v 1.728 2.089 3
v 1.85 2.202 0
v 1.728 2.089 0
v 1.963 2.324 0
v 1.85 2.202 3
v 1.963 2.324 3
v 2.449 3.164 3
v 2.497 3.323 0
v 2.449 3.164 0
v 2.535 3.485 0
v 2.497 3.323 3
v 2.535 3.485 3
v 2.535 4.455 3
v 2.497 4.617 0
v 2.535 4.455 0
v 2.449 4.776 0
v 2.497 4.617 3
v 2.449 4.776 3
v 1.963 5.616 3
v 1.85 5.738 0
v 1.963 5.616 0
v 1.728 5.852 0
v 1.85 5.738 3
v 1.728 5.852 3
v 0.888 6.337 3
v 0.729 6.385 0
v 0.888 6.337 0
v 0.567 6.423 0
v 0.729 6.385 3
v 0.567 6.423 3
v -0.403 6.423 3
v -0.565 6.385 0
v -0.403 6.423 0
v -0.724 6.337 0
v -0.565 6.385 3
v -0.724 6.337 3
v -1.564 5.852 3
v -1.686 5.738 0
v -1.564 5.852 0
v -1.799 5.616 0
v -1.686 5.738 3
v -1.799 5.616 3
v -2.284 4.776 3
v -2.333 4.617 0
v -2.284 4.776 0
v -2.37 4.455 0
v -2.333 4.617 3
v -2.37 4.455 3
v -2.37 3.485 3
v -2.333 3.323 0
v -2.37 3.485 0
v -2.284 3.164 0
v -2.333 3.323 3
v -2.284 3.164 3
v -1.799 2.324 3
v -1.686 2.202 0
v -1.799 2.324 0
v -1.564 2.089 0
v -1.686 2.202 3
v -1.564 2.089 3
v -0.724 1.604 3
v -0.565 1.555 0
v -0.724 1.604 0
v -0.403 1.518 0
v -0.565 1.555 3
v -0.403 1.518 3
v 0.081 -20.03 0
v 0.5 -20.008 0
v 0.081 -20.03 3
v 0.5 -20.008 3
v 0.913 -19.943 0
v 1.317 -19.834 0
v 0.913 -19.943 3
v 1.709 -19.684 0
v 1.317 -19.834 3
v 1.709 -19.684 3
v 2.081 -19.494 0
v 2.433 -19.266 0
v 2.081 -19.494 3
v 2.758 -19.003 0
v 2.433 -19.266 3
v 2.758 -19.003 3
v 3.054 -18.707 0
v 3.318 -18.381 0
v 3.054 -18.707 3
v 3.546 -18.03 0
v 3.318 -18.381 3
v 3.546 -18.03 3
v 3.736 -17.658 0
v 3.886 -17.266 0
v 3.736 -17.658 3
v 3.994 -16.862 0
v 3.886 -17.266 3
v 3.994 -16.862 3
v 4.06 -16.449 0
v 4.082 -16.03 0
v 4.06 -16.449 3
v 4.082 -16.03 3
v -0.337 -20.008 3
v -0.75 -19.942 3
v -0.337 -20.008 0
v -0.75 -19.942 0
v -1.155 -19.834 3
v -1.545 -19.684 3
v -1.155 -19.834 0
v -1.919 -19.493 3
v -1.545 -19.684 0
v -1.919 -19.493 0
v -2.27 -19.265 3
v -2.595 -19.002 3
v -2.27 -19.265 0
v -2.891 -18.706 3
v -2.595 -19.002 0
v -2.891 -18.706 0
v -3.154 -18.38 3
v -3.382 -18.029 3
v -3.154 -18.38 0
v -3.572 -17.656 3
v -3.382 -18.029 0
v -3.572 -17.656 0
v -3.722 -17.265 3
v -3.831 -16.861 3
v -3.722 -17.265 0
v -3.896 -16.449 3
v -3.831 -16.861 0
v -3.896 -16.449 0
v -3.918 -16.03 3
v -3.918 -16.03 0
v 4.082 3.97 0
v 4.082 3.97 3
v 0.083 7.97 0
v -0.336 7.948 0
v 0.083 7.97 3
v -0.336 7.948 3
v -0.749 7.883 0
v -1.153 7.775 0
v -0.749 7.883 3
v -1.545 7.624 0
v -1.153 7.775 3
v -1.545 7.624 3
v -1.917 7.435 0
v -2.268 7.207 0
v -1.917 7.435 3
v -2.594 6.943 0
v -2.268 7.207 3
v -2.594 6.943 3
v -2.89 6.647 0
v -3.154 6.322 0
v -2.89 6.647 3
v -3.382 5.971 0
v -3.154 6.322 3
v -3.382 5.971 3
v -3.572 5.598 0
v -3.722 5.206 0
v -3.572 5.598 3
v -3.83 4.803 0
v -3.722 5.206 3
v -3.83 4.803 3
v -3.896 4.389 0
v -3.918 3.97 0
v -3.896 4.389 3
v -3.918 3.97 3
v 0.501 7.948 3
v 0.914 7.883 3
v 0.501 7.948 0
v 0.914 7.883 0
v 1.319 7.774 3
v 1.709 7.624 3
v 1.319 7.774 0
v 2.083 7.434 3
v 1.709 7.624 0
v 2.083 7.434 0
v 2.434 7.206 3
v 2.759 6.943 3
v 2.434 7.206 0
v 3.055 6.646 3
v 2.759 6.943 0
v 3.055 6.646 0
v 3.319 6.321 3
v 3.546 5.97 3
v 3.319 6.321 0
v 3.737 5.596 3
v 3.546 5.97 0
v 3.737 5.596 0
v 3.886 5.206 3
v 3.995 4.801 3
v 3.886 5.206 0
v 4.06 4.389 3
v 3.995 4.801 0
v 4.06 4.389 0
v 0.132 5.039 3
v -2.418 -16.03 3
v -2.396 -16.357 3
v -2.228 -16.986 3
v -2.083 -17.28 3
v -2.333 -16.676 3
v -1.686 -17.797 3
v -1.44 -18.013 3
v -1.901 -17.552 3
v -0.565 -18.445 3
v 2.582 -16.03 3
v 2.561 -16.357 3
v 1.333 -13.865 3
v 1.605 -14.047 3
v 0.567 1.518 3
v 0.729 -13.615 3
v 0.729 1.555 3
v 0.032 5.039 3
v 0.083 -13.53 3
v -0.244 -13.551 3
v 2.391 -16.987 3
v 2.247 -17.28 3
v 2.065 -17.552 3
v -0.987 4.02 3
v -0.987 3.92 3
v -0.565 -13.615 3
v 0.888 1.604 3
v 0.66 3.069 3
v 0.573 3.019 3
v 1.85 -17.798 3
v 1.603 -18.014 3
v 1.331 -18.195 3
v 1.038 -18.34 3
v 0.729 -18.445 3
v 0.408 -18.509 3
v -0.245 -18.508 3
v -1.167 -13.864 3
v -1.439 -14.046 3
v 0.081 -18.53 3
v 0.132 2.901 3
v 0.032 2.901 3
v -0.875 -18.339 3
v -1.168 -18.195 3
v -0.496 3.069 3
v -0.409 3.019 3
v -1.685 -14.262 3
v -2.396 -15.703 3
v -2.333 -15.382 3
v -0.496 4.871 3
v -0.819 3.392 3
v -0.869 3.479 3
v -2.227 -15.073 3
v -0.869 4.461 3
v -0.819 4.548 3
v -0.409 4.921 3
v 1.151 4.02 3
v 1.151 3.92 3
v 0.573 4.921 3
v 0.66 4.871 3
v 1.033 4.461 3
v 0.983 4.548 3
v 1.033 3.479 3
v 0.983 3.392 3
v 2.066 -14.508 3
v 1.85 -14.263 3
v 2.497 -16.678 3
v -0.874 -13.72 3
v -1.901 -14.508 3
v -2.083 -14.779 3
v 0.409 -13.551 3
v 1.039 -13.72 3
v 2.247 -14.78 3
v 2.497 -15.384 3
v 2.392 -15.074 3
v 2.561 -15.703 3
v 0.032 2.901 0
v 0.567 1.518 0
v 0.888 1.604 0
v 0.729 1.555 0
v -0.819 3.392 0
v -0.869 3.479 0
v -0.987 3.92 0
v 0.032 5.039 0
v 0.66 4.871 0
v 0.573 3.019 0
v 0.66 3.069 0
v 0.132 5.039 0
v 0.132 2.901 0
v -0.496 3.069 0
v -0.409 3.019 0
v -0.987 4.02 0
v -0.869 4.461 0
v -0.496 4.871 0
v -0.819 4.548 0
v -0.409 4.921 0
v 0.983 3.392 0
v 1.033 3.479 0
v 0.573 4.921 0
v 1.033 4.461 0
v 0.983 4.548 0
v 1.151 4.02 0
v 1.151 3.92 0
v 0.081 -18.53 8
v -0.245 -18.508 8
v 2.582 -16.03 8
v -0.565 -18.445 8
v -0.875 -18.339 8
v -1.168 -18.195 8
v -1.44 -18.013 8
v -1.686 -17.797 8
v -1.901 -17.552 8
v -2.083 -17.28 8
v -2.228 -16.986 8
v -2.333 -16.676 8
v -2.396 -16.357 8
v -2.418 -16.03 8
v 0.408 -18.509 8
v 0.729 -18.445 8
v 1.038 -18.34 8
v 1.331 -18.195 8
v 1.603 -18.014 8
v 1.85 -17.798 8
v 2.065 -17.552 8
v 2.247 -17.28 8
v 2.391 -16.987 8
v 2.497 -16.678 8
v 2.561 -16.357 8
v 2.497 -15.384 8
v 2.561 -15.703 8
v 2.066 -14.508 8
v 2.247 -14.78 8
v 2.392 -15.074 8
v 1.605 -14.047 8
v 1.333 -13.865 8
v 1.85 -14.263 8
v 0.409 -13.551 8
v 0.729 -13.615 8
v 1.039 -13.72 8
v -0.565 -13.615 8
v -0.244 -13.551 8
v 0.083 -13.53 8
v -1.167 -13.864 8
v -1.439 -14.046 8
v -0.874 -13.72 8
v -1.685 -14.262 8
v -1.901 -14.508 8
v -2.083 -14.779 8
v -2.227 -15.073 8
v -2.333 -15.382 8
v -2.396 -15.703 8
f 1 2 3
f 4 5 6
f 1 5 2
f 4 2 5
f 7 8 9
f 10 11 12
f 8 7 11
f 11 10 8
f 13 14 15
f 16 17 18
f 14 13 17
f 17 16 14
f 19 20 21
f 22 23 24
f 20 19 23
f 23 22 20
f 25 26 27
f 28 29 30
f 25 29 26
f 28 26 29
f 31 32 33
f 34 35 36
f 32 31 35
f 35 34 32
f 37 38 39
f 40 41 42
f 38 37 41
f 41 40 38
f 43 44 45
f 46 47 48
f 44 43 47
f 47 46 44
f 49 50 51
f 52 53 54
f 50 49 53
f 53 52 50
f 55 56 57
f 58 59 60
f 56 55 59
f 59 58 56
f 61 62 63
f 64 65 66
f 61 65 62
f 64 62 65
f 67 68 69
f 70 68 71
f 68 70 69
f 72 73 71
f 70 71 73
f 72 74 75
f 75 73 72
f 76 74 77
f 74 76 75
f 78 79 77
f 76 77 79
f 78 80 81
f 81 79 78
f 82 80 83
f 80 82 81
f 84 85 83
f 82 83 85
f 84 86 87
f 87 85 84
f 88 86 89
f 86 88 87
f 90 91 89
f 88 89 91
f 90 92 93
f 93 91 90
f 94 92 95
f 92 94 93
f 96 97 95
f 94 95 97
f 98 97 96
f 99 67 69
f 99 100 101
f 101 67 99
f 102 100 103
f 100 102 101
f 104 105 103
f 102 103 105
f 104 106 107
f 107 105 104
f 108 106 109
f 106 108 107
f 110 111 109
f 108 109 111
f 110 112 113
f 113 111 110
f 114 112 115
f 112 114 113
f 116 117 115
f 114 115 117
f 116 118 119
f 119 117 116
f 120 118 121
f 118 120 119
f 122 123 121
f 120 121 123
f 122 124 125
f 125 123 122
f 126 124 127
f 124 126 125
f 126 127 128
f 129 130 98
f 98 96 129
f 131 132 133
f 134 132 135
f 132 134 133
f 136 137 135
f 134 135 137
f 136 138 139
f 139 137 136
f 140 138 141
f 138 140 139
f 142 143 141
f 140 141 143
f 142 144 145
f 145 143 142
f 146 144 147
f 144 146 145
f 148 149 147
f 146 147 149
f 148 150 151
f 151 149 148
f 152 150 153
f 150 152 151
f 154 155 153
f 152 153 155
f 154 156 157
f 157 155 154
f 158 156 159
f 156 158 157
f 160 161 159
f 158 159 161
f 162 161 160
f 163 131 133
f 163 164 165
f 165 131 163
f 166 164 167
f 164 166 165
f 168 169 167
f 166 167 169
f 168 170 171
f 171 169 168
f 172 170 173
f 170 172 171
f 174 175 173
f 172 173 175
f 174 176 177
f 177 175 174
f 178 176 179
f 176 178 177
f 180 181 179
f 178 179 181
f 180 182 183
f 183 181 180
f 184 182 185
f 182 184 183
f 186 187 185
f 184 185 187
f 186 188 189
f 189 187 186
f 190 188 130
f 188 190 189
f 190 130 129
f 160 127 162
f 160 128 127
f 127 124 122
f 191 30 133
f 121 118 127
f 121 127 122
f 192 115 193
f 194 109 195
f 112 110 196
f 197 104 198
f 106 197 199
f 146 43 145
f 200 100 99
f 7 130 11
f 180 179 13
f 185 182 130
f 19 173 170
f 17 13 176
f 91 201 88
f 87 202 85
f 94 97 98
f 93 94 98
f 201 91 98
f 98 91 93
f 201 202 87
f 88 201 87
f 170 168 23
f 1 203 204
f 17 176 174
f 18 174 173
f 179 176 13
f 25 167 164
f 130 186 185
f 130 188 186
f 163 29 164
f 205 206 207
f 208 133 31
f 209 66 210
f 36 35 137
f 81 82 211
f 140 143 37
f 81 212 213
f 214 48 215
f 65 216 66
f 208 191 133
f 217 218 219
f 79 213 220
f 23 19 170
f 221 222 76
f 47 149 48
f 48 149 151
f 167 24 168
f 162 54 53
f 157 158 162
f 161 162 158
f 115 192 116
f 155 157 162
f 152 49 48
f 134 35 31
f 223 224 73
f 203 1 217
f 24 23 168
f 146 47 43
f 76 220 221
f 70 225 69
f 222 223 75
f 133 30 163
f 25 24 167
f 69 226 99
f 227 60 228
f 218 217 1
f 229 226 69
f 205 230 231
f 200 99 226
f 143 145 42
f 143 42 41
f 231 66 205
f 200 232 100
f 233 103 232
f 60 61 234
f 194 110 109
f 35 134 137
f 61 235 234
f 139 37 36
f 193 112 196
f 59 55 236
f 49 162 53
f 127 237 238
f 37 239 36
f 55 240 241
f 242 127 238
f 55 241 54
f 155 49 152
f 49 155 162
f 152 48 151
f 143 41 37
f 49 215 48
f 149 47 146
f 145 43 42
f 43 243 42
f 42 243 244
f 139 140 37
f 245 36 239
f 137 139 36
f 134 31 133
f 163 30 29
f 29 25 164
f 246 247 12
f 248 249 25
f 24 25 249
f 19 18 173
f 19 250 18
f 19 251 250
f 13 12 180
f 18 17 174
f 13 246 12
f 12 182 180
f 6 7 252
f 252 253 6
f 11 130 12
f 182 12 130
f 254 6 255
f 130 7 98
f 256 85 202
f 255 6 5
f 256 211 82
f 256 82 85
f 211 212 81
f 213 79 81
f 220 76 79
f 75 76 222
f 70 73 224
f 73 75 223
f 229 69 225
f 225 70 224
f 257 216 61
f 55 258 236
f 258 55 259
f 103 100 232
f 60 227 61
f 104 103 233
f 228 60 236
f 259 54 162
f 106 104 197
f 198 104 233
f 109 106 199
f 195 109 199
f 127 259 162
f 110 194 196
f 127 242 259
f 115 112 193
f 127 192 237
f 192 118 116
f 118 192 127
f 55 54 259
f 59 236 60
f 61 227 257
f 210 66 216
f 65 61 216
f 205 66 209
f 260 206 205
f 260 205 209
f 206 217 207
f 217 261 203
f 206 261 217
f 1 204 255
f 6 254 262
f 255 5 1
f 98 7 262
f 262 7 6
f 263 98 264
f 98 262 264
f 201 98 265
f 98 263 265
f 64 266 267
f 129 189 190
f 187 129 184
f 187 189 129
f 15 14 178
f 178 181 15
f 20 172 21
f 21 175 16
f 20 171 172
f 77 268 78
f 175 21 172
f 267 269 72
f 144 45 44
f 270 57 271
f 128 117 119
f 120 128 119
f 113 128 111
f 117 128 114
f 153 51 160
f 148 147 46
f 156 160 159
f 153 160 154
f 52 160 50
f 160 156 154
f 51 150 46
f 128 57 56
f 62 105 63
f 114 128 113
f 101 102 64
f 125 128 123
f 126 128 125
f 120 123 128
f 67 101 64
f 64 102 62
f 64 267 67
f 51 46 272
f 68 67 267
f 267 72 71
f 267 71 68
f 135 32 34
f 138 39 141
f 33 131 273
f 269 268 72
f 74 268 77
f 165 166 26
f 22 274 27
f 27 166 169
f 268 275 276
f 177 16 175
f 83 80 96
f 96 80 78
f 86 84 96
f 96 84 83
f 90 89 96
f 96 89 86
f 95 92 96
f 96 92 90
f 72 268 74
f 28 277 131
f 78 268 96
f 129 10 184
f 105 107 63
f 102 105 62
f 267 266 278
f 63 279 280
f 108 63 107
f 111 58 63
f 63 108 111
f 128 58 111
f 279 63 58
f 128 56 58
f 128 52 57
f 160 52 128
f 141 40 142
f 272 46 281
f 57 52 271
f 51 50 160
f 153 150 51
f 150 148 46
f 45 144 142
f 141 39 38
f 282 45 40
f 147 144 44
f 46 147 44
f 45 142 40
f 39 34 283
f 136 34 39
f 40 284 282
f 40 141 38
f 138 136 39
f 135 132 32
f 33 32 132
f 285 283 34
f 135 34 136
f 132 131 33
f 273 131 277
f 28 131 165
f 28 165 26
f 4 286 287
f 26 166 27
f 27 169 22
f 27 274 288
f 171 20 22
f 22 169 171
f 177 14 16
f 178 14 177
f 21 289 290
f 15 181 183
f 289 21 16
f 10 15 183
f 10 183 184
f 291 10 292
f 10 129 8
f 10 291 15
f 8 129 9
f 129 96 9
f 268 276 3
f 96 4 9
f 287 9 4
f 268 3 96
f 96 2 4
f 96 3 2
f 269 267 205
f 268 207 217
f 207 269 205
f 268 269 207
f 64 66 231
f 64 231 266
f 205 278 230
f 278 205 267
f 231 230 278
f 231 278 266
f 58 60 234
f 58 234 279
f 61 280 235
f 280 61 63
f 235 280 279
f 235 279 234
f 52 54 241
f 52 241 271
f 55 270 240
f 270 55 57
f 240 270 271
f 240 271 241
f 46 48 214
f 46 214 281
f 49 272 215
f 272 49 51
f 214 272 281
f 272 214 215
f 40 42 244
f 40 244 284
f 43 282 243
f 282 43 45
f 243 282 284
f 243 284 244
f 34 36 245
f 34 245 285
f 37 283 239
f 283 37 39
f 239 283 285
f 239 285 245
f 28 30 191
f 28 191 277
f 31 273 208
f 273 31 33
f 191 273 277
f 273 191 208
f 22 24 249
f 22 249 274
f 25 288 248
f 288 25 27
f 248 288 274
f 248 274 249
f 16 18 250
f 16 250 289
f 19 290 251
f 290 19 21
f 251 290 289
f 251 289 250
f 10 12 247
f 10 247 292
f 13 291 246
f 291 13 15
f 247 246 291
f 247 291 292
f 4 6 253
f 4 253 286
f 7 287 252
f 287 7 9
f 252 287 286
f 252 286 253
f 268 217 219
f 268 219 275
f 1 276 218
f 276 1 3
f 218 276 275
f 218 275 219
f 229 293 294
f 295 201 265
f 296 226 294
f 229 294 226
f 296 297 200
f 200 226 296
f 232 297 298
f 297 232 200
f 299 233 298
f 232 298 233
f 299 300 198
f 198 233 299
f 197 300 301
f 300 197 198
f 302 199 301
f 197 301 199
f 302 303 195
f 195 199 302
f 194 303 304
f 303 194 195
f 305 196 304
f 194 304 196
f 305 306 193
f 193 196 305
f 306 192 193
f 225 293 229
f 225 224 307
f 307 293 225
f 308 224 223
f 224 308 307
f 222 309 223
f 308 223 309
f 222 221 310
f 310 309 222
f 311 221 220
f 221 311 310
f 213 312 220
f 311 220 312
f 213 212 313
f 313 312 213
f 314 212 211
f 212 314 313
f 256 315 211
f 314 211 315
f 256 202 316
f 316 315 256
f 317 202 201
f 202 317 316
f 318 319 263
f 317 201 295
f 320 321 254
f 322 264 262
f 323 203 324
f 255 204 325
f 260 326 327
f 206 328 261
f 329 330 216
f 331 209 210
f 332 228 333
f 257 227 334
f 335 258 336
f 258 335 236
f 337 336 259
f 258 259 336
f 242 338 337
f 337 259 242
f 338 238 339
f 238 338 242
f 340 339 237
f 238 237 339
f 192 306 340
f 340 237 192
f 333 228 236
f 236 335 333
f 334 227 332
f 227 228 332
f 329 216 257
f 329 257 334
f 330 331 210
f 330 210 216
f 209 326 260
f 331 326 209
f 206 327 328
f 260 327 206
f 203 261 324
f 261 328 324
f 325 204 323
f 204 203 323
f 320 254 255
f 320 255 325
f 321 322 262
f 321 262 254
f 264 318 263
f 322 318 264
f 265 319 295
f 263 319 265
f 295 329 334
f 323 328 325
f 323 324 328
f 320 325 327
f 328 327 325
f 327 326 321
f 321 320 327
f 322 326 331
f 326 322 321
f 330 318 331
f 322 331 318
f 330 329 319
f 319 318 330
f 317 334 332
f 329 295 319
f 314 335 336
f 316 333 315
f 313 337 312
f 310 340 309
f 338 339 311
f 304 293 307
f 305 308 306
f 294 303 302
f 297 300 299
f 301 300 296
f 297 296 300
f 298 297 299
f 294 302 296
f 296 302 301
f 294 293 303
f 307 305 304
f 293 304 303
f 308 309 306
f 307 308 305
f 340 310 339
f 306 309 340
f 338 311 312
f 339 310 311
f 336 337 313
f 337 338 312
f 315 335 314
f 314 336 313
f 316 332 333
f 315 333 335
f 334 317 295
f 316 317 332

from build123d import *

# Parameters (mm, degrees)
BOSS_EXTRUDE1_DEPTH = 3
CUT_EXTRUDE2_REACH  = 22.661
SKETCH4_R           = 2.5
BOSS_EXTRUDE4_DEPTH = 3
SKETCH6_R           = 2.5
BOSS_EXTRUDE5_DEPTH = 5


with BuildPart() as part:
    # Sketch1 → Boss-Extrude1 (new body)
    with BuildSketch(Plane(origin=(0, 0, 0), x_dir=(0, 1, 0), z_dir=(0, 0, 1))):
        with BuildLine():
            Line((-16.029850746, -4.082089552), (3.970149254, -4.082089552))
            ThreePointArc((3.970149254, -4.082089552), (7.970149254, -0.082089552), (3.970149254, 3.917910448))
            Line((3.970149254, 3.917910448), (-16.029850746, 3.917910448))
            ThreePointArc((-16.029850746, 3.917910448), (-20.029850746, -0.082089552), (-16.029850746, -4.082089552))
        make_face()
    extrude(amount=BOSS_EXTRUDE1_DEPTH)

    # Sketch4 → Cut-Extrude2 (cut, up to next)
    with BuildSketch(Plane(origin=(0, 0, 3), x_dir=(0, -1, 0), z_dir=(0, 0, 1)), mode=Mode.PRIVATE) as cut_extrude2_sk1:
        with Locations(Location((-3.970149254, 0.082089552, 0), (0, 0, 90))):
            Circle(SKETCH4_R)
    cut_extrude2_tool1 = extrude(cut_extrude2_sk1.sketch, amount=-CUT_EXTRUDE2_REACH, mode=Mode.PRIVATE) & part.part
    add(cut_extrude2_tool1.solids().sort_by_distance((0.08209, 3.970149, 3))[0], mode=Mode.SUBTRACT)

    # Sketch5 → Boss-Extrude4 (add)
    with BuildSketch(Plane.XY.offset(3)):
        Polygon((-0.417910448, 1.470149254), (0.582089552, 1.470149254), (0.132089552, 2.901058056), (0.032089552, 2.901058056), align=None)
        Polygon((-1.60092315, 2.055085744), (-0.734897746, 1.555085744), (-0.409154777, 3.019289117), (-0.495757317, 3.069289117), align=None)
        Polygon((-2.332973957, 3.153161956), (-1.832973957, 2.287136552), (-0.818770584, 3.392302385), (-0.868770584, 3.478904925), align=None)
        Polygon((-2.417910448, 4.470149254), (-2.417910448, 3.470149254), (-0.987001646, 3.920149254), (-0.987001646, 4.020149254), align=None)
        Polygon((-1.832973957, 5.653161956), (-2.332973957, 4.787136552), (-0.868770584, 4.461393582), (-0.818770584, 4.547996123), align=None)
        Polygon((-0.734897746, 6.385212763), (-1.60092315, 5.885212763), (-0.495757317, 4.87100939), (-0.409154777, 4.92100939), align=None)
        Polygon((0.582089552, 6.470149254), (-0.417910448, 6.470149254), (0.032089552, 5.039240452), (0.132089552, 5.039240452), align=None)
        Polygon((1.765102254, 5.885212763), (0.89907685, 6.385212763), (0.573333881, 4.92100939), (0.659936421, 4.87100939), align=None)
        Polygon((2.497153062, 4.787136552), (1.997153062, 5.653161956), (0.982949689, 4.547996123), (1.032949689, 4.461393582), align=None)
        Polygon((2.582089552, 3.470149254), (2.582089552, 4.470149254), (1.15118075, 4.020149254), (1.15118075, 3.920149254), align=None)
        Polygon((1.997153062, 2.287136552), (2.497153062, 3.153161956), (1.032949689, 3.478904925), (0.982949689, 3.392302385), align=None)
        Polygon((0.89907685, 1.555085744), (1.765102254, 2.055085744), (0.659936421, 3.069289117), (0.573333881, 3.019289117), align=None)
    extrude(amount=-BOSS_EXTRUDE4_DEPTH)

    # Sketch6 → Boss-Extrude5 (add)
    with BuildSketch(Plane.XY.offset(3)):
        with Locations((0.082089552, -16.029850746)):
            Circle(SKETCH6_R)
    extrude(amount=BOSS_EXTRUDE5_DEPTH)


solid = part.part
